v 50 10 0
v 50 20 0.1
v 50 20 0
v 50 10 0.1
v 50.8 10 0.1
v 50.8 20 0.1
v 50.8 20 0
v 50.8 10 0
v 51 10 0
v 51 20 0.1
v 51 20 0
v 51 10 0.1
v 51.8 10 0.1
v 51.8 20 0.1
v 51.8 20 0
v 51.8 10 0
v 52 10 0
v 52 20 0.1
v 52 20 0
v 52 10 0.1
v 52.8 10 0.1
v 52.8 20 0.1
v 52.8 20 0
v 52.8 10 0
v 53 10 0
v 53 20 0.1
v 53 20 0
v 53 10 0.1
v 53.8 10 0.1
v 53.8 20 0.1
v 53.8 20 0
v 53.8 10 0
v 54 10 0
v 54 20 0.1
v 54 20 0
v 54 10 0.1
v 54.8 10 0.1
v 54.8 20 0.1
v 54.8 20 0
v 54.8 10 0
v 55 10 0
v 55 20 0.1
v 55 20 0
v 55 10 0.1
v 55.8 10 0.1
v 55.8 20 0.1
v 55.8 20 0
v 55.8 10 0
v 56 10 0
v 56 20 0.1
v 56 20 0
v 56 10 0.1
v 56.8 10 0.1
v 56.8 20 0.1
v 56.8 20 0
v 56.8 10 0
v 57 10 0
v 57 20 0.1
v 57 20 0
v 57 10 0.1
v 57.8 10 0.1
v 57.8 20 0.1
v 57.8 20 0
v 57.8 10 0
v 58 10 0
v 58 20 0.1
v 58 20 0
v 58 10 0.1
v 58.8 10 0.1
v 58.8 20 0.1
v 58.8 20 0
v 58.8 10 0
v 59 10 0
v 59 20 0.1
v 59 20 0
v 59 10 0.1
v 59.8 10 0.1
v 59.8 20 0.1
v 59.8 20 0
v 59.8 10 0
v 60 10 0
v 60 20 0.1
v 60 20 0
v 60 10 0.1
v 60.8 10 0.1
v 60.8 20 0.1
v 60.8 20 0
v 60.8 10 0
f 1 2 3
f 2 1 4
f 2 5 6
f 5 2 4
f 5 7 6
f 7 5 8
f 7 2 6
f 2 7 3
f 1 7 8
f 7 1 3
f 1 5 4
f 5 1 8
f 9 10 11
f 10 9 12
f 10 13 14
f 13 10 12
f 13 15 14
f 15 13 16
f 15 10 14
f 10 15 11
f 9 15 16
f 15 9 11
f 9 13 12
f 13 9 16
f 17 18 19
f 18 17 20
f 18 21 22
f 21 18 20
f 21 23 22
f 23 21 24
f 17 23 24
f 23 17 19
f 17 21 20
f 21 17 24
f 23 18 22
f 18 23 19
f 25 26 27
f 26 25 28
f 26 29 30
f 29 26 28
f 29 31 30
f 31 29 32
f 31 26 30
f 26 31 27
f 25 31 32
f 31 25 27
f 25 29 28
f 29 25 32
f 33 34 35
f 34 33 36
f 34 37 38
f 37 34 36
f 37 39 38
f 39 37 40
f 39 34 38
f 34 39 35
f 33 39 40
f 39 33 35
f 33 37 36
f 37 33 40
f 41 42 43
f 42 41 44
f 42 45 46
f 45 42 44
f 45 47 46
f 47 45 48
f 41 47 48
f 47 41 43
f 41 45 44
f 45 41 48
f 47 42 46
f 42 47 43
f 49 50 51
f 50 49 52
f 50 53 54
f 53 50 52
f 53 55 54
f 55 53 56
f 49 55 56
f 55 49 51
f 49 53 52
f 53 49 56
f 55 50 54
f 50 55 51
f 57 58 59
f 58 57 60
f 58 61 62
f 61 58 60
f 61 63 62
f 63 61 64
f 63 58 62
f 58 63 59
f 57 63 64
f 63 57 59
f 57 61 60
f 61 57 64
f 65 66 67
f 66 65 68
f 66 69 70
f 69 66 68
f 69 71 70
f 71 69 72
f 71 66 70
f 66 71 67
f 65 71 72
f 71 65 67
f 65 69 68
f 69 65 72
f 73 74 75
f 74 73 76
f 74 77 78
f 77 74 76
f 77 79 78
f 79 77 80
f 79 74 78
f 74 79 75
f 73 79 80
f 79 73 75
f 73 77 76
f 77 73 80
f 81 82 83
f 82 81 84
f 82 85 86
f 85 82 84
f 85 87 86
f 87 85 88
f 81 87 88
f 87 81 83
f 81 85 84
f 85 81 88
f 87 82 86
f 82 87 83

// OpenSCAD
translate([10+40,10+0,0])
        for (i = [0 : 10]){
            translate([i,0,0])
                cube(size = [0.8,10,0.1]);
    }
